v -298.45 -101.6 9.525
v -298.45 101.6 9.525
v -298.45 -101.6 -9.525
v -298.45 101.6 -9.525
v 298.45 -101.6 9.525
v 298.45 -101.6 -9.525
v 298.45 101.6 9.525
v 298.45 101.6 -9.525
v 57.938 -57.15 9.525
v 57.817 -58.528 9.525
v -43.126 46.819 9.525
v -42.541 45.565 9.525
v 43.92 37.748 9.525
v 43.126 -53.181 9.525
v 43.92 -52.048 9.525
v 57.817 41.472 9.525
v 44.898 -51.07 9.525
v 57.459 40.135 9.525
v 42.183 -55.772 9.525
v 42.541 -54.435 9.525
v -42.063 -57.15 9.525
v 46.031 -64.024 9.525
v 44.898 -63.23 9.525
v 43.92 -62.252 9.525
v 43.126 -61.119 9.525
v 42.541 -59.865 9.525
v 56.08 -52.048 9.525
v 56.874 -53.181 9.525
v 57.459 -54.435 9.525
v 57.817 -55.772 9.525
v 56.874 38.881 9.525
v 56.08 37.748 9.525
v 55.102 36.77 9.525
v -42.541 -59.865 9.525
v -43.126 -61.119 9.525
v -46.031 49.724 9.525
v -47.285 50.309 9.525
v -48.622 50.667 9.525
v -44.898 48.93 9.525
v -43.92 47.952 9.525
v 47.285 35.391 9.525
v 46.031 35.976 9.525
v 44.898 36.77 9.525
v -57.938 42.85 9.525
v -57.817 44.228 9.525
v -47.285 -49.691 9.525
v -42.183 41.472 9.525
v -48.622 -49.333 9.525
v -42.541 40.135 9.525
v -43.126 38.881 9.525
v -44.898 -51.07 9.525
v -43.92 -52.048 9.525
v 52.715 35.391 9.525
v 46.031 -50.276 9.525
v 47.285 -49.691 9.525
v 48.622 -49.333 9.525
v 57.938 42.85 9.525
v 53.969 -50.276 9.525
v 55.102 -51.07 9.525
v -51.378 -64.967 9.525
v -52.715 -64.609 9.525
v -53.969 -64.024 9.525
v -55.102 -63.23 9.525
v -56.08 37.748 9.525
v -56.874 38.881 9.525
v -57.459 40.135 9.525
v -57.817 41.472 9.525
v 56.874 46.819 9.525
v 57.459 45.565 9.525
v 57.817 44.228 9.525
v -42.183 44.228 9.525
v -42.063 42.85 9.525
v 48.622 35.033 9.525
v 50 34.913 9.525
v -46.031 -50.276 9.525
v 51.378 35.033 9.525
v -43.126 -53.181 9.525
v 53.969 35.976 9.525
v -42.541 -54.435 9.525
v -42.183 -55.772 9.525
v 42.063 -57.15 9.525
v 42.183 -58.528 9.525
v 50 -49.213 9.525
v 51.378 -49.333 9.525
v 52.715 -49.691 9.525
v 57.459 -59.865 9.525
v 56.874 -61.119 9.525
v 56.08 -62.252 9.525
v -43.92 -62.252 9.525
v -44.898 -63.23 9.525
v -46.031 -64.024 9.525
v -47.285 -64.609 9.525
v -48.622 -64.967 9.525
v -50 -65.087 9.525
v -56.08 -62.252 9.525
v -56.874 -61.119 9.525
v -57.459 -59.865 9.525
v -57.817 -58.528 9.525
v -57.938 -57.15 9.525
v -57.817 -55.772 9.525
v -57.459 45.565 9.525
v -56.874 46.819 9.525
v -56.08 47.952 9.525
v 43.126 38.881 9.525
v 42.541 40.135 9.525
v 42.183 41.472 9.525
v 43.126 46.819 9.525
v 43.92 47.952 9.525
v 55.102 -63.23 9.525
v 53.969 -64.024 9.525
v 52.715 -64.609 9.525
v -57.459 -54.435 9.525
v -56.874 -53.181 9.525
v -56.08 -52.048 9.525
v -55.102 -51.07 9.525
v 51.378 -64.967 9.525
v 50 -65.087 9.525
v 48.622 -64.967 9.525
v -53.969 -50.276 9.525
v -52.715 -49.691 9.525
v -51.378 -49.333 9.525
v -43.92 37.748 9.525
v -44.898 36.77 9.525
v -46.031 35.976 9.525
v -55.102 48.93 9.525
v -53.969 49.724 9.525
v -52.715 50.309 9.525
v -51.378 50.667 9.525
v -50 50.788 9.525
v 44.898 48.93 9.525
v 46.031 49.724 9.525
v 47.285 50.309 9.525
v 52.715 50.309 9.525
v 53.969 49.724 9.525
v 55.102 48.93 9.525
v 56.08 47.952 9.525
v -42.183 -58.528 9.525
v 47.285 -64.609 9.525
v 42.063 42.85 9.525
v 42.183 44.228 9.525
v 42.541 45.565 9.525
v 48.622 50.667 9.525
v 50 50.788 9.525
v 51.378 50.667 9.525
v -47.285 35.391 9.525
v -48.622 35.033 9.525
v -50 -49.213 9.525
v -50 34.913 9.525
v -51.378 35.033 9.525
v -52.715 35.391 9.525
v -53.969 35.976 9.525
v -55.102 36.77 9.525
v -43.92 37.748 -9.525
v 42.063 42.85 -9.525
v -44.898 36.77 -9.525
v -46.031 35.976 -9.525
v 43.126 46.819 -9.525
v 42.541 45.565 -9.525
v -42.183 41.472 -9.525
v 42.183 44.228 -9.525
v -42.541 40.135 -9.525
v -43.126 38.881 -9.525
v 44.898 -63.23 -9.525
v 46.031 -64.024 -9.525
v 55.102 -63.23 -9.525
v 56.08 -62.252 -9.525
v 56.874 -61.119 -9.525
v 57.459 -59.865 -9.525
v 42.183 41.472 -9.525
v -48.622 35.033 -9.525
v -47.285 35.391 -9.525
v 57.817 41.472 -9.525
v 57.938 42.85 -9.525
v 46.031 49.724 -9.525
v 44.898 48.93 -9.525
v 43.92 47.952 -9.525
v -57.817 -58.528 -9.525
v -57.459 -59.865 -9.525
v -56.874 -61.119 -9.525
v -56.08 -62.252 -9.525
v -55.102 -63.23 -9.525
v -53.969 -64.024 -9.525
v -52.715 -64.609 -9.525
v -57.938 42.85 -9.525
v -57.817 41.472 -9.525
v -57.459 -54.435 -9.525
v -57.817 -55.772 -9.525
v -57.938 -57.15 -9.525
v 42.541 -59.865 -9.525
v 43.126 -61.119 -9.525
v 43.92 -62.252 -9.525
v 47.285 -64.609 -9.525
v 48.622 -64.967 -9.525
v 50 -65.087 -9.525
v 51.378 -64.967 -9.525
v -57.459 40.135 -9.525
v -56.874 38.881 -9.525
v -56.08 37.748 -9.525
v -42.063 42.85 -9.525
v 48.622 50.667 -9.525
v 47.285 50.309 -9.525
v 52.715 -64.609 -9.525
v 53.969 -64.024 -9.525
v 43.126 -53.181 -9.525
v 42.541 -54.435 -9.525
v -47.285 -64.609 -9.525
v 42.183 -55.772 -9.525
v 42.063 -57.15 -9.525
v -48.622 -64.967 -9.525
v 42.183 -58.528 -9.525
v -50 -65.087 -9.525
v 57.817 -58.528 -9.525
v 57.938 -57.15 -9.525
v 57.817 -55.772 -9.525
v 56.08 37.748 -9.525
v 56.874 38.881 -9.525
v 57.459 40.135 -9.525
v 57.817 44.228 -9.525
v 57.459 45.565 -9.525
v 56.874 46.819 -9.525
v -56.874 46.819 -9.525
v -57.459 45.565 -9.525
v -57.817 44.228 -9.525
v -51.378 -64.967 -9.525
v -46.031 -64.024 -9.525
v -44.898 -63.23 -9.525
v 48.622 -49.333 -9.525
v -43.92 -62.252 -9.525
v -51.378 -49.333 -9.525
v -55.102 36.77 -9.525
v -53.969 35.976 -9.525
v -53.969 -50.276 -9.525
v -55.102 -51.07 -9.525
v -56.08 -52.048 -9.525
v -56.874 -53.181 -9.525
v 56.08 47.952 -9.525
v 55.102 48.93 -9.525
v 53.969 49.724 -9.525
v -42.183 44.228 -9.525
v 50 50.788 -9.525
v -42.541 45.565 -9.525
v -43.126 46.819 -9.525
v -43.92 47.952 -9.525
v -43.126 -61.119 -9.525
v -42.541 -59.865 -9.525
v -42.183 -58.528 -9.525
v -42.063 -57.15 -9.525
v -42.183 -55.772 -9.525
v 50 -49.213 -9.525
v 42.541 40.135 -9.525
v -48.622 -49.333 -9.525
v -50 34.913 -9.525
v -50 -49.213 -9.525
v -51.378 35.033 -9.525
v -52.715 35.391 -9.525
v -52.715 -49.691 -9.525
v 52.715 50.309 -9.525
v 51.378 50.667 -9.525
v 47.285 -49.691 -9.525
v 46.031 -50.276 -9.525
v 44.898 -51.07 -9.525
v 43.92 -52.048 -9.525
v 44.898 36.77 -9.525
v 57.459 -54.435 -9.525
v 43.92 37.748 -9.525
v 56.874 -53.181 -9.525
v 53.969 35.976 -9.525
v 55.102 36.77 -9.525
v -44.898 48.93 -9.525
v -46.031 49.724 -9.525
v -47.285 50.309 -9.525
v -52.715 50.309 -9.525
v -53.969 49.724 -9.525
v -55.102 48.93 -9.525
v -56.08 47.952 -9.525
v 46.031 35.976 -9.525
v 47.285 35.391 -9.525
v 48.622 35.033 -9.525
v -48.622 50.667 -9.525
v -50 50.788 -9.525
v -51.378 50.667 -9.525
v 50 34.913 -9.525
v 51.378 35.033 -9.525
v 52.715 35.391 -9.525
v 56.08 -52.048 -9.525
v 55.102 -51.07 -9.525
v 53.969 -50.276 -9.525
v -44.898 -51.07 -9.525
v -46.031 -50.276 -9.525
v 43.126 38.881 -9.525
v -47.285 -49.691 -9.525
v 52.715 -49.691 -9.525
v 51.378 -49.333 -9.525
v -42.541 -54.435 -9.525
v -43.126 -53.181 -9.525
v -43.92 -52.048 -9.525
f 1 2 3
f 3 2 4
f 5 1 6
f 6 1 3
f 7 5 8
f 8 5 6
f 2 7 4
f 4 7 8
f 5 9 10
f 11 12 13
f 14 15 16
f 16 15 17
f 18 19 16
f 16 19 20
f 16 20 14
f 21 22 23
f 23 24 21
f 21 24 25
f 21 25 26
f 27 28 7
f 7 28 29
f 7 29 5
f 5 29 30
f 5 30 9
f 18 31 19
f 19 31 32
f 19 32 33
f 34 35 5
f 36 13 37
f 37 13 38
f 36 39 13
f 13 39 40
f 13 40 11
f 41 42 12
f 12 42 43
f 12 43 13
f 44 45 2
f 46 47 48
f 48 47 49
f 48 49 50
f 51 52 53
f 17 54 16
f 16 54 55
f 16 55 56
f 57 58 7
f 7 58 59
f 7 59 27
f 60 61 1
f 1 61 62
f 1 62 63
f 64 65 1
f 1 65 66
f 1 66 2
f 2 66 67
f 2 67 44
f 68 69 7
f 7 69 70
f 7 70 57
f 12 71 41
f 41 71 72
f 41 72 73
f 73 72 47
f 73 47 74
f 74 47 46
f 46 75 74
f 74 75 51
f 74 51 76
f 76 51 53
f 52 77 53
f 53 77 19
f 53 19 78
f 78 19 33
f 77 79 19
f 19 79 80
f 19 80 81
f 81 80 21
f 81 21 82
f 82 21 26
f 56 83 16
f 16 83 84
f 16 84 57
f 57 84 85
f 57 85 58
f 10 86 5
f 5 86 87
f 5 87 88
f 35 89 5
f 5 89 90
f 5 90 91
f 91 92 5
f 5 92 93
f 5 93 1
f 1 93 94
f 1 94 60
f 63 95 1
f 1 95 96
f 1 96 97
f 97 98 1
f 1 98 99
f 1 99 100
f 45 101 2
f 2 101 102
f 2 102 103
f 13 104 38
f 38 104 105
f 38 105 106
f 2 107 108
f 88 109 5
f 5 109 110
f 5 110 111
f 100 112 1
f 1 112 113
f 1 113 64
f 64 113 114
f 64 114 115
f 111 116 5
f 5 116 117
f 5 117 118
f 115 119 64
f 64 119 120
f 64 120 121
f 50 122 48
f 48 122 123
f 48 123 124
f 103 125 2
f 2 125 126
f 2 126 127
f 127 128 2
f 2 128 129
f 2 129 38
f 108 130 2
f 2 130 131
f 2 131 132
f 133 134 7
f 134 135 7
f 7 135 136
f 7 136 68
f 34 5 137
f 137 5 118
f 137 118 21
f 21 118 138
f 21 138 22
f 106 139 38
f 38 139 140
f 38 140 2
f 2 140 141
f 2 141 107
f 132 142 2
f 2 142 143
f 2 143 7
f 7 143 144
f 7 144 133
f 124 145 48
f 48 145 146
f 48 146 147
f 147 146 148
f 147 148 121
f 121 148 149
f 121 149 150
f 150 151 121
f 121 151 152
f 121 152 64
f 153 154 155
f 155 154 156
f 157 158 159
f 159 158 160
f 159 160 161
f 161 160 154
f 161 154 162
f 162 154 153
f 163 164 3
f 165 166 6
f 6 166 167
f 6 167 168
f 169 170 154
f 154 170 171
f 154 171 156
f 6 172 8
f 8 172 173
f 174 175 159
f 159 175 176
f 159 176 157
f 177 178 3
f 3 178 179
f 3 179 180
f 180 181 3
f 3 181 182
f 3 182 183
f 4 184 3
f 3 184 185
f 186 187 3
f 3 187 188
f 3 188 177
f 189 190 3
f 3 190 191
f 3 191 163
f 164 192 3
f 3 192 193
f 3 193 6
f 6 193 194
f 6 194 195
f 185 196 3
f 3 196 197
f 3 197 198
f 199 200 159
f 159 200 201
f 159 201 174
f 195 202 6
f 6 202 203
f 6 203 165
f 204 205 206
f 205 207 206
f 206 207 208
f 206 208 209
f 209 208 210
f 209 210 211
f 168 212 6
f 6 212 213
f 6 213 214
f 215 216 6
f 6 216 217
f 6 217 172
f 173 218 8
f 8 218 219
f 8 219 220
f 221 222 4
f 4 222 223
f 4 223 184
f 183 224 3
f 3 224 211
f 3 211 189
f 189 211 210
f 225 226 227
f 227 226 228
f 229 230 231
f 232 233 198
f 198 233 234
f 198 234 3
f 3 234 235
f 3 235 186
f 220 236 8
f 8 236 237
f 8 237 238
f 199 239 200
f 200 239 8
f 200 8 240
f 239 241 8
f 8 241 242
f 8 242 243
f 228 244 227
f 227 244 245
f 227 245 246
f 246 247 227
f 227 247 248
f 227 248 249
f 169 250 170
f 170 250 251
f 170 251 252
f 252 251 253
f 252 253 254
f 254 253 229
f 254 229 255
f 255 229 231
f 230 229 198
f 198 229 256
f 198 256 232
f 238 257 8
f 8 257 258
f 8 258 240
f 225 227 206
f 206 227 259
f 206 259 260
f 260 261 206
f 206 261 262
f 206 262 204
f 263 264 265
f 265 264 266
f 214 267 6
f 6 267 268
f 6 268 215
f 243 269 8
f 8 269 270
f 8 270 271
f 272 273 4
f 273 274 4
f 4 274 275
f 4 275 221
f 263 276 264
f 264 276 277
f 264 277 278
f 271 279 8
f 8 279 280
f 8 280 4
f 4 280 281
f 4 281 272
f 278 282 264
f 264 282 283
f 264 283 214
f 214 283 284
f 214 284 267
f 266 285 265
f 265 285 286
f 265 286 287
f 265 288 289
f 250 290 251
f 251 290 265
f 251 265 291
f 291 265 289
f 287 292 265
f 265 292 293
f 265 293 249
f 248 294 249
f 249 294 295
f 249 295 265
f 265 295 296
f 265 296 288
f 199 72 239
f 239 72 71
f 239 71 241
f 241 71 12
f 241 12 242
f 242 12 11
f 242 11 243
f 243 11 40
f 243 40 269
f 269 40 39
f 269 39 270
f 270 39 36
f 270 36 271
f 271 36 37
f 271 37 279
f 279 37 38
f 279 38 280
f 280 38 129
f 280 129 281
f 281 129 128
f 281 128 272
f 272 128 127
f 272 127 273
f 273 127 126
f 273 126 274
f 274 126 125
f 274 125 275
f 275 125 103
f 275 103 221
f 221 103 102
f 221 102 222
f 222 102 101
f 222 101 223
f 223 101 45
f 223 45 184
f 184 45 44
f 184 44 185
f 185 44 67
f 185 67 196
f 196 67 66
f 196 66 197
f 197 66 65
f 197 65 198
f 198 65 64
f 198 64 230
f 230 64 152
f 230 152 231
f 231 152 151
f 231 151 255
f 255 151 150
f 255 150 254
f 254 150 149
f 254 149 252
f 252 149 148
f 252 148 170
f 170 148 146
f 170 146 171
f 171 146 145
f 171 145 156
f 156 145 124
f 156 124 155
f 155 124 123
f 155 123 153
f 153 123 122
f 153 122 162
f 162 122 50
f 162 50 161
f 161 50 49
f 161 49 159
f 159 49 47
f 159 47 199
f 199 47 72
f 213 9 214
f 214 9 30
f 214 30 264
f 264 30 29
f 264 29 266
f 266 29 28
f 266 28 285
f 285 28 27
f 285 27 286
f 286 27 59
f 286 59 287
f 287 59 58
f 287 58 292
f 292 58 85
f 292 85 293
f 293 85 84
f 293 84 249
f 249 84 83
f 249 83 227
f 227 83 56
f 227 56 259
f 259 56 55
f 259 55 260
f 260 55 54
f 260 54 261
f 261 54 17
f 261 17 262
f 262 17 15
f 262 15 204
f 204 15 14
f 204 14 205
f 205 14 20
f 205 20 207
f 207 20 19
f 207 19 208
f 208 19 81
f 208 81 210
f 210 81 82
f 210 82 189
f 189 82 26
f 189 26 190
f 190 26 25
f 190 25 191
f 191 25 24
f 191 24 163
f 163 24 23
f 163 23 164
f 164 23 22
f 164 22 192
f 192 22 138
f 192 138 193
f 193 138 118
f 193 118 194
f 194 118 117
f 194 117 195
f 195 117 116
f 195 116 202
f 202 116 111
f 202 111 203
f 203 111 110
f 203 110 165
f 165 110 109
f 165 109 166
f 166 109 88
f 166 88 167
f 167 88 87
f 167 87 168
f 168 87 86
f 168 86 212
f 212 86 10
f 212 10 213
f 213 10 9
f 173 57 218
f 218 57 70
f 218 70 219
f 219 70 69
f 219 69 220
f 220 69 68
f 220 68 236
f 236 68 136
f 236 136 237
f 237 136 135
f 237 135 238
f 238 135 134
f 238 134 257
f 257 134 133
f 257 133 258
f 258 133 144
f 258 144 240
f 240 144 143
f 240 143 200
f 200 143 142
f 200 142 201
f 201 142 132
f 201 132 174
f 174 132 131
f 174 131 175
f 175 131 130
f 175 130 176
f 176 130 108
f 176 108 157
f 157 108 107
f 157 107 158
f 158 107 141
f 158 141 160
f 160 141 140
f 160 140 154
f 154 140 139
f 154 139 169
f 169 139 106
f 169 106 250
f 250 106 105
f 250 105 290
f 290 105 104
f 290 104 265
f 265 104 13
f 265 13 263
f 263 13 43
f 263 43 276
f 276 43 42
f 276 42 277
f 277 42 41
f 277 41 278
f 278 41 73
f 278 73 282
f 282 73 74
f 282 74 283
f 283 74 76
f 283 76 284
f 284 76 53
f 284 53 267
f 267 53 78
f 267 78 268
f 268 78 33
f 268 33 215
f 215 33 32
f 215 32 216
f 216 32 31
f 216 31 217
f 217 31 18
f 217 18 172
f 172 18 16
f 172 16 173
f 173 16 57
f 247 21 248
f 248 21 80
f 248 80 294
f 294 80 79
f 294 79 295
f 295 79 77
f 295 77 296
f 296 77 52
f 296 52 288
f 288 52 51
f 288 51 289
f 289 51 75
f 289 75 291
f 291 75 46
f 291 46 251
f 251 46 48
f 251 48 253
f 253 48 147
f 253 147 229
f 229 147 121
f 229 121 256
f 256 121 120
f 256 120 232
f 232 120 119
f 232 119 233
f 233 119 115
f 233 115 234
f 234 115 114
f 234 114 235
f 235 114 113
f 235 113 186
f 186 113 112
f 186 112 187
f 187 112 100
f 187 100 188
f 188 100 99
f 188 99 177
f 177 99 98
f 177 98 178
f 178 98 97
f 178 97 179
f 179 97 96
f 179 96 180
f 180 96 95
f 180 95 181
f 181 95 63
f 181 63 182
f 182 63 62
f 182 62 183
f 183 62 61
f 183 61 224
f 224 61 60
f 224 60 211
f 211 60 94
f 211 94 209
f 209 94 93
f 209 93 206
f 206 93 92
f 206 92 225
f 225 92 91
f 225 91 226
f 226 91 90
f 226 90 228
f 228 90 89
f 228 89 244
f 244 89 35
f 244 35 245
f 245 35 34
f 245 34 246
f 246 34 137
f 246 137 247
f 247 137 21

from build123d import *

# Parameters (mm, degrees)
SKETCH1_W           = 596.9
SKETCH1_H           = 203.2
BOSS_EXTRUDE1_DEPTH = 9.525
SKETCH2_R           = 7.9375
CUT_EXTRUDE1_DEPTH  = 20.05


with BuildPart() as part:
    # Sketch1 → Boss-Extrude1 (new body, symmetric)
    with BuildSketch(Plane.XY):
        Rectangle(SKETCH1_W, SKETCH1_H)
    extrude(amount=BOSS_EXTRUDE1_DEPTH, both=True)

    # Sketch2 → Cut-Extrude1 (cut, through all)
    with BuildSketch(Plane.XY.offset(9.525)):
        with Locations((-50, 42.85)):
            Circle(SKETCH2_R)
        with Locations((-50, -57.15)):
            Circle(SKETCH2_R)
        with Locations((50, 42.85)):
            Circle(SKETCH2_R)
        with Locations((50, -57.15)):
            Circle(SKETCH2_R)
    extrude(amount=-CUT_EXTRUDE1_DEPTH, mode=Mode.SUBTRACT)


solid = part.part
